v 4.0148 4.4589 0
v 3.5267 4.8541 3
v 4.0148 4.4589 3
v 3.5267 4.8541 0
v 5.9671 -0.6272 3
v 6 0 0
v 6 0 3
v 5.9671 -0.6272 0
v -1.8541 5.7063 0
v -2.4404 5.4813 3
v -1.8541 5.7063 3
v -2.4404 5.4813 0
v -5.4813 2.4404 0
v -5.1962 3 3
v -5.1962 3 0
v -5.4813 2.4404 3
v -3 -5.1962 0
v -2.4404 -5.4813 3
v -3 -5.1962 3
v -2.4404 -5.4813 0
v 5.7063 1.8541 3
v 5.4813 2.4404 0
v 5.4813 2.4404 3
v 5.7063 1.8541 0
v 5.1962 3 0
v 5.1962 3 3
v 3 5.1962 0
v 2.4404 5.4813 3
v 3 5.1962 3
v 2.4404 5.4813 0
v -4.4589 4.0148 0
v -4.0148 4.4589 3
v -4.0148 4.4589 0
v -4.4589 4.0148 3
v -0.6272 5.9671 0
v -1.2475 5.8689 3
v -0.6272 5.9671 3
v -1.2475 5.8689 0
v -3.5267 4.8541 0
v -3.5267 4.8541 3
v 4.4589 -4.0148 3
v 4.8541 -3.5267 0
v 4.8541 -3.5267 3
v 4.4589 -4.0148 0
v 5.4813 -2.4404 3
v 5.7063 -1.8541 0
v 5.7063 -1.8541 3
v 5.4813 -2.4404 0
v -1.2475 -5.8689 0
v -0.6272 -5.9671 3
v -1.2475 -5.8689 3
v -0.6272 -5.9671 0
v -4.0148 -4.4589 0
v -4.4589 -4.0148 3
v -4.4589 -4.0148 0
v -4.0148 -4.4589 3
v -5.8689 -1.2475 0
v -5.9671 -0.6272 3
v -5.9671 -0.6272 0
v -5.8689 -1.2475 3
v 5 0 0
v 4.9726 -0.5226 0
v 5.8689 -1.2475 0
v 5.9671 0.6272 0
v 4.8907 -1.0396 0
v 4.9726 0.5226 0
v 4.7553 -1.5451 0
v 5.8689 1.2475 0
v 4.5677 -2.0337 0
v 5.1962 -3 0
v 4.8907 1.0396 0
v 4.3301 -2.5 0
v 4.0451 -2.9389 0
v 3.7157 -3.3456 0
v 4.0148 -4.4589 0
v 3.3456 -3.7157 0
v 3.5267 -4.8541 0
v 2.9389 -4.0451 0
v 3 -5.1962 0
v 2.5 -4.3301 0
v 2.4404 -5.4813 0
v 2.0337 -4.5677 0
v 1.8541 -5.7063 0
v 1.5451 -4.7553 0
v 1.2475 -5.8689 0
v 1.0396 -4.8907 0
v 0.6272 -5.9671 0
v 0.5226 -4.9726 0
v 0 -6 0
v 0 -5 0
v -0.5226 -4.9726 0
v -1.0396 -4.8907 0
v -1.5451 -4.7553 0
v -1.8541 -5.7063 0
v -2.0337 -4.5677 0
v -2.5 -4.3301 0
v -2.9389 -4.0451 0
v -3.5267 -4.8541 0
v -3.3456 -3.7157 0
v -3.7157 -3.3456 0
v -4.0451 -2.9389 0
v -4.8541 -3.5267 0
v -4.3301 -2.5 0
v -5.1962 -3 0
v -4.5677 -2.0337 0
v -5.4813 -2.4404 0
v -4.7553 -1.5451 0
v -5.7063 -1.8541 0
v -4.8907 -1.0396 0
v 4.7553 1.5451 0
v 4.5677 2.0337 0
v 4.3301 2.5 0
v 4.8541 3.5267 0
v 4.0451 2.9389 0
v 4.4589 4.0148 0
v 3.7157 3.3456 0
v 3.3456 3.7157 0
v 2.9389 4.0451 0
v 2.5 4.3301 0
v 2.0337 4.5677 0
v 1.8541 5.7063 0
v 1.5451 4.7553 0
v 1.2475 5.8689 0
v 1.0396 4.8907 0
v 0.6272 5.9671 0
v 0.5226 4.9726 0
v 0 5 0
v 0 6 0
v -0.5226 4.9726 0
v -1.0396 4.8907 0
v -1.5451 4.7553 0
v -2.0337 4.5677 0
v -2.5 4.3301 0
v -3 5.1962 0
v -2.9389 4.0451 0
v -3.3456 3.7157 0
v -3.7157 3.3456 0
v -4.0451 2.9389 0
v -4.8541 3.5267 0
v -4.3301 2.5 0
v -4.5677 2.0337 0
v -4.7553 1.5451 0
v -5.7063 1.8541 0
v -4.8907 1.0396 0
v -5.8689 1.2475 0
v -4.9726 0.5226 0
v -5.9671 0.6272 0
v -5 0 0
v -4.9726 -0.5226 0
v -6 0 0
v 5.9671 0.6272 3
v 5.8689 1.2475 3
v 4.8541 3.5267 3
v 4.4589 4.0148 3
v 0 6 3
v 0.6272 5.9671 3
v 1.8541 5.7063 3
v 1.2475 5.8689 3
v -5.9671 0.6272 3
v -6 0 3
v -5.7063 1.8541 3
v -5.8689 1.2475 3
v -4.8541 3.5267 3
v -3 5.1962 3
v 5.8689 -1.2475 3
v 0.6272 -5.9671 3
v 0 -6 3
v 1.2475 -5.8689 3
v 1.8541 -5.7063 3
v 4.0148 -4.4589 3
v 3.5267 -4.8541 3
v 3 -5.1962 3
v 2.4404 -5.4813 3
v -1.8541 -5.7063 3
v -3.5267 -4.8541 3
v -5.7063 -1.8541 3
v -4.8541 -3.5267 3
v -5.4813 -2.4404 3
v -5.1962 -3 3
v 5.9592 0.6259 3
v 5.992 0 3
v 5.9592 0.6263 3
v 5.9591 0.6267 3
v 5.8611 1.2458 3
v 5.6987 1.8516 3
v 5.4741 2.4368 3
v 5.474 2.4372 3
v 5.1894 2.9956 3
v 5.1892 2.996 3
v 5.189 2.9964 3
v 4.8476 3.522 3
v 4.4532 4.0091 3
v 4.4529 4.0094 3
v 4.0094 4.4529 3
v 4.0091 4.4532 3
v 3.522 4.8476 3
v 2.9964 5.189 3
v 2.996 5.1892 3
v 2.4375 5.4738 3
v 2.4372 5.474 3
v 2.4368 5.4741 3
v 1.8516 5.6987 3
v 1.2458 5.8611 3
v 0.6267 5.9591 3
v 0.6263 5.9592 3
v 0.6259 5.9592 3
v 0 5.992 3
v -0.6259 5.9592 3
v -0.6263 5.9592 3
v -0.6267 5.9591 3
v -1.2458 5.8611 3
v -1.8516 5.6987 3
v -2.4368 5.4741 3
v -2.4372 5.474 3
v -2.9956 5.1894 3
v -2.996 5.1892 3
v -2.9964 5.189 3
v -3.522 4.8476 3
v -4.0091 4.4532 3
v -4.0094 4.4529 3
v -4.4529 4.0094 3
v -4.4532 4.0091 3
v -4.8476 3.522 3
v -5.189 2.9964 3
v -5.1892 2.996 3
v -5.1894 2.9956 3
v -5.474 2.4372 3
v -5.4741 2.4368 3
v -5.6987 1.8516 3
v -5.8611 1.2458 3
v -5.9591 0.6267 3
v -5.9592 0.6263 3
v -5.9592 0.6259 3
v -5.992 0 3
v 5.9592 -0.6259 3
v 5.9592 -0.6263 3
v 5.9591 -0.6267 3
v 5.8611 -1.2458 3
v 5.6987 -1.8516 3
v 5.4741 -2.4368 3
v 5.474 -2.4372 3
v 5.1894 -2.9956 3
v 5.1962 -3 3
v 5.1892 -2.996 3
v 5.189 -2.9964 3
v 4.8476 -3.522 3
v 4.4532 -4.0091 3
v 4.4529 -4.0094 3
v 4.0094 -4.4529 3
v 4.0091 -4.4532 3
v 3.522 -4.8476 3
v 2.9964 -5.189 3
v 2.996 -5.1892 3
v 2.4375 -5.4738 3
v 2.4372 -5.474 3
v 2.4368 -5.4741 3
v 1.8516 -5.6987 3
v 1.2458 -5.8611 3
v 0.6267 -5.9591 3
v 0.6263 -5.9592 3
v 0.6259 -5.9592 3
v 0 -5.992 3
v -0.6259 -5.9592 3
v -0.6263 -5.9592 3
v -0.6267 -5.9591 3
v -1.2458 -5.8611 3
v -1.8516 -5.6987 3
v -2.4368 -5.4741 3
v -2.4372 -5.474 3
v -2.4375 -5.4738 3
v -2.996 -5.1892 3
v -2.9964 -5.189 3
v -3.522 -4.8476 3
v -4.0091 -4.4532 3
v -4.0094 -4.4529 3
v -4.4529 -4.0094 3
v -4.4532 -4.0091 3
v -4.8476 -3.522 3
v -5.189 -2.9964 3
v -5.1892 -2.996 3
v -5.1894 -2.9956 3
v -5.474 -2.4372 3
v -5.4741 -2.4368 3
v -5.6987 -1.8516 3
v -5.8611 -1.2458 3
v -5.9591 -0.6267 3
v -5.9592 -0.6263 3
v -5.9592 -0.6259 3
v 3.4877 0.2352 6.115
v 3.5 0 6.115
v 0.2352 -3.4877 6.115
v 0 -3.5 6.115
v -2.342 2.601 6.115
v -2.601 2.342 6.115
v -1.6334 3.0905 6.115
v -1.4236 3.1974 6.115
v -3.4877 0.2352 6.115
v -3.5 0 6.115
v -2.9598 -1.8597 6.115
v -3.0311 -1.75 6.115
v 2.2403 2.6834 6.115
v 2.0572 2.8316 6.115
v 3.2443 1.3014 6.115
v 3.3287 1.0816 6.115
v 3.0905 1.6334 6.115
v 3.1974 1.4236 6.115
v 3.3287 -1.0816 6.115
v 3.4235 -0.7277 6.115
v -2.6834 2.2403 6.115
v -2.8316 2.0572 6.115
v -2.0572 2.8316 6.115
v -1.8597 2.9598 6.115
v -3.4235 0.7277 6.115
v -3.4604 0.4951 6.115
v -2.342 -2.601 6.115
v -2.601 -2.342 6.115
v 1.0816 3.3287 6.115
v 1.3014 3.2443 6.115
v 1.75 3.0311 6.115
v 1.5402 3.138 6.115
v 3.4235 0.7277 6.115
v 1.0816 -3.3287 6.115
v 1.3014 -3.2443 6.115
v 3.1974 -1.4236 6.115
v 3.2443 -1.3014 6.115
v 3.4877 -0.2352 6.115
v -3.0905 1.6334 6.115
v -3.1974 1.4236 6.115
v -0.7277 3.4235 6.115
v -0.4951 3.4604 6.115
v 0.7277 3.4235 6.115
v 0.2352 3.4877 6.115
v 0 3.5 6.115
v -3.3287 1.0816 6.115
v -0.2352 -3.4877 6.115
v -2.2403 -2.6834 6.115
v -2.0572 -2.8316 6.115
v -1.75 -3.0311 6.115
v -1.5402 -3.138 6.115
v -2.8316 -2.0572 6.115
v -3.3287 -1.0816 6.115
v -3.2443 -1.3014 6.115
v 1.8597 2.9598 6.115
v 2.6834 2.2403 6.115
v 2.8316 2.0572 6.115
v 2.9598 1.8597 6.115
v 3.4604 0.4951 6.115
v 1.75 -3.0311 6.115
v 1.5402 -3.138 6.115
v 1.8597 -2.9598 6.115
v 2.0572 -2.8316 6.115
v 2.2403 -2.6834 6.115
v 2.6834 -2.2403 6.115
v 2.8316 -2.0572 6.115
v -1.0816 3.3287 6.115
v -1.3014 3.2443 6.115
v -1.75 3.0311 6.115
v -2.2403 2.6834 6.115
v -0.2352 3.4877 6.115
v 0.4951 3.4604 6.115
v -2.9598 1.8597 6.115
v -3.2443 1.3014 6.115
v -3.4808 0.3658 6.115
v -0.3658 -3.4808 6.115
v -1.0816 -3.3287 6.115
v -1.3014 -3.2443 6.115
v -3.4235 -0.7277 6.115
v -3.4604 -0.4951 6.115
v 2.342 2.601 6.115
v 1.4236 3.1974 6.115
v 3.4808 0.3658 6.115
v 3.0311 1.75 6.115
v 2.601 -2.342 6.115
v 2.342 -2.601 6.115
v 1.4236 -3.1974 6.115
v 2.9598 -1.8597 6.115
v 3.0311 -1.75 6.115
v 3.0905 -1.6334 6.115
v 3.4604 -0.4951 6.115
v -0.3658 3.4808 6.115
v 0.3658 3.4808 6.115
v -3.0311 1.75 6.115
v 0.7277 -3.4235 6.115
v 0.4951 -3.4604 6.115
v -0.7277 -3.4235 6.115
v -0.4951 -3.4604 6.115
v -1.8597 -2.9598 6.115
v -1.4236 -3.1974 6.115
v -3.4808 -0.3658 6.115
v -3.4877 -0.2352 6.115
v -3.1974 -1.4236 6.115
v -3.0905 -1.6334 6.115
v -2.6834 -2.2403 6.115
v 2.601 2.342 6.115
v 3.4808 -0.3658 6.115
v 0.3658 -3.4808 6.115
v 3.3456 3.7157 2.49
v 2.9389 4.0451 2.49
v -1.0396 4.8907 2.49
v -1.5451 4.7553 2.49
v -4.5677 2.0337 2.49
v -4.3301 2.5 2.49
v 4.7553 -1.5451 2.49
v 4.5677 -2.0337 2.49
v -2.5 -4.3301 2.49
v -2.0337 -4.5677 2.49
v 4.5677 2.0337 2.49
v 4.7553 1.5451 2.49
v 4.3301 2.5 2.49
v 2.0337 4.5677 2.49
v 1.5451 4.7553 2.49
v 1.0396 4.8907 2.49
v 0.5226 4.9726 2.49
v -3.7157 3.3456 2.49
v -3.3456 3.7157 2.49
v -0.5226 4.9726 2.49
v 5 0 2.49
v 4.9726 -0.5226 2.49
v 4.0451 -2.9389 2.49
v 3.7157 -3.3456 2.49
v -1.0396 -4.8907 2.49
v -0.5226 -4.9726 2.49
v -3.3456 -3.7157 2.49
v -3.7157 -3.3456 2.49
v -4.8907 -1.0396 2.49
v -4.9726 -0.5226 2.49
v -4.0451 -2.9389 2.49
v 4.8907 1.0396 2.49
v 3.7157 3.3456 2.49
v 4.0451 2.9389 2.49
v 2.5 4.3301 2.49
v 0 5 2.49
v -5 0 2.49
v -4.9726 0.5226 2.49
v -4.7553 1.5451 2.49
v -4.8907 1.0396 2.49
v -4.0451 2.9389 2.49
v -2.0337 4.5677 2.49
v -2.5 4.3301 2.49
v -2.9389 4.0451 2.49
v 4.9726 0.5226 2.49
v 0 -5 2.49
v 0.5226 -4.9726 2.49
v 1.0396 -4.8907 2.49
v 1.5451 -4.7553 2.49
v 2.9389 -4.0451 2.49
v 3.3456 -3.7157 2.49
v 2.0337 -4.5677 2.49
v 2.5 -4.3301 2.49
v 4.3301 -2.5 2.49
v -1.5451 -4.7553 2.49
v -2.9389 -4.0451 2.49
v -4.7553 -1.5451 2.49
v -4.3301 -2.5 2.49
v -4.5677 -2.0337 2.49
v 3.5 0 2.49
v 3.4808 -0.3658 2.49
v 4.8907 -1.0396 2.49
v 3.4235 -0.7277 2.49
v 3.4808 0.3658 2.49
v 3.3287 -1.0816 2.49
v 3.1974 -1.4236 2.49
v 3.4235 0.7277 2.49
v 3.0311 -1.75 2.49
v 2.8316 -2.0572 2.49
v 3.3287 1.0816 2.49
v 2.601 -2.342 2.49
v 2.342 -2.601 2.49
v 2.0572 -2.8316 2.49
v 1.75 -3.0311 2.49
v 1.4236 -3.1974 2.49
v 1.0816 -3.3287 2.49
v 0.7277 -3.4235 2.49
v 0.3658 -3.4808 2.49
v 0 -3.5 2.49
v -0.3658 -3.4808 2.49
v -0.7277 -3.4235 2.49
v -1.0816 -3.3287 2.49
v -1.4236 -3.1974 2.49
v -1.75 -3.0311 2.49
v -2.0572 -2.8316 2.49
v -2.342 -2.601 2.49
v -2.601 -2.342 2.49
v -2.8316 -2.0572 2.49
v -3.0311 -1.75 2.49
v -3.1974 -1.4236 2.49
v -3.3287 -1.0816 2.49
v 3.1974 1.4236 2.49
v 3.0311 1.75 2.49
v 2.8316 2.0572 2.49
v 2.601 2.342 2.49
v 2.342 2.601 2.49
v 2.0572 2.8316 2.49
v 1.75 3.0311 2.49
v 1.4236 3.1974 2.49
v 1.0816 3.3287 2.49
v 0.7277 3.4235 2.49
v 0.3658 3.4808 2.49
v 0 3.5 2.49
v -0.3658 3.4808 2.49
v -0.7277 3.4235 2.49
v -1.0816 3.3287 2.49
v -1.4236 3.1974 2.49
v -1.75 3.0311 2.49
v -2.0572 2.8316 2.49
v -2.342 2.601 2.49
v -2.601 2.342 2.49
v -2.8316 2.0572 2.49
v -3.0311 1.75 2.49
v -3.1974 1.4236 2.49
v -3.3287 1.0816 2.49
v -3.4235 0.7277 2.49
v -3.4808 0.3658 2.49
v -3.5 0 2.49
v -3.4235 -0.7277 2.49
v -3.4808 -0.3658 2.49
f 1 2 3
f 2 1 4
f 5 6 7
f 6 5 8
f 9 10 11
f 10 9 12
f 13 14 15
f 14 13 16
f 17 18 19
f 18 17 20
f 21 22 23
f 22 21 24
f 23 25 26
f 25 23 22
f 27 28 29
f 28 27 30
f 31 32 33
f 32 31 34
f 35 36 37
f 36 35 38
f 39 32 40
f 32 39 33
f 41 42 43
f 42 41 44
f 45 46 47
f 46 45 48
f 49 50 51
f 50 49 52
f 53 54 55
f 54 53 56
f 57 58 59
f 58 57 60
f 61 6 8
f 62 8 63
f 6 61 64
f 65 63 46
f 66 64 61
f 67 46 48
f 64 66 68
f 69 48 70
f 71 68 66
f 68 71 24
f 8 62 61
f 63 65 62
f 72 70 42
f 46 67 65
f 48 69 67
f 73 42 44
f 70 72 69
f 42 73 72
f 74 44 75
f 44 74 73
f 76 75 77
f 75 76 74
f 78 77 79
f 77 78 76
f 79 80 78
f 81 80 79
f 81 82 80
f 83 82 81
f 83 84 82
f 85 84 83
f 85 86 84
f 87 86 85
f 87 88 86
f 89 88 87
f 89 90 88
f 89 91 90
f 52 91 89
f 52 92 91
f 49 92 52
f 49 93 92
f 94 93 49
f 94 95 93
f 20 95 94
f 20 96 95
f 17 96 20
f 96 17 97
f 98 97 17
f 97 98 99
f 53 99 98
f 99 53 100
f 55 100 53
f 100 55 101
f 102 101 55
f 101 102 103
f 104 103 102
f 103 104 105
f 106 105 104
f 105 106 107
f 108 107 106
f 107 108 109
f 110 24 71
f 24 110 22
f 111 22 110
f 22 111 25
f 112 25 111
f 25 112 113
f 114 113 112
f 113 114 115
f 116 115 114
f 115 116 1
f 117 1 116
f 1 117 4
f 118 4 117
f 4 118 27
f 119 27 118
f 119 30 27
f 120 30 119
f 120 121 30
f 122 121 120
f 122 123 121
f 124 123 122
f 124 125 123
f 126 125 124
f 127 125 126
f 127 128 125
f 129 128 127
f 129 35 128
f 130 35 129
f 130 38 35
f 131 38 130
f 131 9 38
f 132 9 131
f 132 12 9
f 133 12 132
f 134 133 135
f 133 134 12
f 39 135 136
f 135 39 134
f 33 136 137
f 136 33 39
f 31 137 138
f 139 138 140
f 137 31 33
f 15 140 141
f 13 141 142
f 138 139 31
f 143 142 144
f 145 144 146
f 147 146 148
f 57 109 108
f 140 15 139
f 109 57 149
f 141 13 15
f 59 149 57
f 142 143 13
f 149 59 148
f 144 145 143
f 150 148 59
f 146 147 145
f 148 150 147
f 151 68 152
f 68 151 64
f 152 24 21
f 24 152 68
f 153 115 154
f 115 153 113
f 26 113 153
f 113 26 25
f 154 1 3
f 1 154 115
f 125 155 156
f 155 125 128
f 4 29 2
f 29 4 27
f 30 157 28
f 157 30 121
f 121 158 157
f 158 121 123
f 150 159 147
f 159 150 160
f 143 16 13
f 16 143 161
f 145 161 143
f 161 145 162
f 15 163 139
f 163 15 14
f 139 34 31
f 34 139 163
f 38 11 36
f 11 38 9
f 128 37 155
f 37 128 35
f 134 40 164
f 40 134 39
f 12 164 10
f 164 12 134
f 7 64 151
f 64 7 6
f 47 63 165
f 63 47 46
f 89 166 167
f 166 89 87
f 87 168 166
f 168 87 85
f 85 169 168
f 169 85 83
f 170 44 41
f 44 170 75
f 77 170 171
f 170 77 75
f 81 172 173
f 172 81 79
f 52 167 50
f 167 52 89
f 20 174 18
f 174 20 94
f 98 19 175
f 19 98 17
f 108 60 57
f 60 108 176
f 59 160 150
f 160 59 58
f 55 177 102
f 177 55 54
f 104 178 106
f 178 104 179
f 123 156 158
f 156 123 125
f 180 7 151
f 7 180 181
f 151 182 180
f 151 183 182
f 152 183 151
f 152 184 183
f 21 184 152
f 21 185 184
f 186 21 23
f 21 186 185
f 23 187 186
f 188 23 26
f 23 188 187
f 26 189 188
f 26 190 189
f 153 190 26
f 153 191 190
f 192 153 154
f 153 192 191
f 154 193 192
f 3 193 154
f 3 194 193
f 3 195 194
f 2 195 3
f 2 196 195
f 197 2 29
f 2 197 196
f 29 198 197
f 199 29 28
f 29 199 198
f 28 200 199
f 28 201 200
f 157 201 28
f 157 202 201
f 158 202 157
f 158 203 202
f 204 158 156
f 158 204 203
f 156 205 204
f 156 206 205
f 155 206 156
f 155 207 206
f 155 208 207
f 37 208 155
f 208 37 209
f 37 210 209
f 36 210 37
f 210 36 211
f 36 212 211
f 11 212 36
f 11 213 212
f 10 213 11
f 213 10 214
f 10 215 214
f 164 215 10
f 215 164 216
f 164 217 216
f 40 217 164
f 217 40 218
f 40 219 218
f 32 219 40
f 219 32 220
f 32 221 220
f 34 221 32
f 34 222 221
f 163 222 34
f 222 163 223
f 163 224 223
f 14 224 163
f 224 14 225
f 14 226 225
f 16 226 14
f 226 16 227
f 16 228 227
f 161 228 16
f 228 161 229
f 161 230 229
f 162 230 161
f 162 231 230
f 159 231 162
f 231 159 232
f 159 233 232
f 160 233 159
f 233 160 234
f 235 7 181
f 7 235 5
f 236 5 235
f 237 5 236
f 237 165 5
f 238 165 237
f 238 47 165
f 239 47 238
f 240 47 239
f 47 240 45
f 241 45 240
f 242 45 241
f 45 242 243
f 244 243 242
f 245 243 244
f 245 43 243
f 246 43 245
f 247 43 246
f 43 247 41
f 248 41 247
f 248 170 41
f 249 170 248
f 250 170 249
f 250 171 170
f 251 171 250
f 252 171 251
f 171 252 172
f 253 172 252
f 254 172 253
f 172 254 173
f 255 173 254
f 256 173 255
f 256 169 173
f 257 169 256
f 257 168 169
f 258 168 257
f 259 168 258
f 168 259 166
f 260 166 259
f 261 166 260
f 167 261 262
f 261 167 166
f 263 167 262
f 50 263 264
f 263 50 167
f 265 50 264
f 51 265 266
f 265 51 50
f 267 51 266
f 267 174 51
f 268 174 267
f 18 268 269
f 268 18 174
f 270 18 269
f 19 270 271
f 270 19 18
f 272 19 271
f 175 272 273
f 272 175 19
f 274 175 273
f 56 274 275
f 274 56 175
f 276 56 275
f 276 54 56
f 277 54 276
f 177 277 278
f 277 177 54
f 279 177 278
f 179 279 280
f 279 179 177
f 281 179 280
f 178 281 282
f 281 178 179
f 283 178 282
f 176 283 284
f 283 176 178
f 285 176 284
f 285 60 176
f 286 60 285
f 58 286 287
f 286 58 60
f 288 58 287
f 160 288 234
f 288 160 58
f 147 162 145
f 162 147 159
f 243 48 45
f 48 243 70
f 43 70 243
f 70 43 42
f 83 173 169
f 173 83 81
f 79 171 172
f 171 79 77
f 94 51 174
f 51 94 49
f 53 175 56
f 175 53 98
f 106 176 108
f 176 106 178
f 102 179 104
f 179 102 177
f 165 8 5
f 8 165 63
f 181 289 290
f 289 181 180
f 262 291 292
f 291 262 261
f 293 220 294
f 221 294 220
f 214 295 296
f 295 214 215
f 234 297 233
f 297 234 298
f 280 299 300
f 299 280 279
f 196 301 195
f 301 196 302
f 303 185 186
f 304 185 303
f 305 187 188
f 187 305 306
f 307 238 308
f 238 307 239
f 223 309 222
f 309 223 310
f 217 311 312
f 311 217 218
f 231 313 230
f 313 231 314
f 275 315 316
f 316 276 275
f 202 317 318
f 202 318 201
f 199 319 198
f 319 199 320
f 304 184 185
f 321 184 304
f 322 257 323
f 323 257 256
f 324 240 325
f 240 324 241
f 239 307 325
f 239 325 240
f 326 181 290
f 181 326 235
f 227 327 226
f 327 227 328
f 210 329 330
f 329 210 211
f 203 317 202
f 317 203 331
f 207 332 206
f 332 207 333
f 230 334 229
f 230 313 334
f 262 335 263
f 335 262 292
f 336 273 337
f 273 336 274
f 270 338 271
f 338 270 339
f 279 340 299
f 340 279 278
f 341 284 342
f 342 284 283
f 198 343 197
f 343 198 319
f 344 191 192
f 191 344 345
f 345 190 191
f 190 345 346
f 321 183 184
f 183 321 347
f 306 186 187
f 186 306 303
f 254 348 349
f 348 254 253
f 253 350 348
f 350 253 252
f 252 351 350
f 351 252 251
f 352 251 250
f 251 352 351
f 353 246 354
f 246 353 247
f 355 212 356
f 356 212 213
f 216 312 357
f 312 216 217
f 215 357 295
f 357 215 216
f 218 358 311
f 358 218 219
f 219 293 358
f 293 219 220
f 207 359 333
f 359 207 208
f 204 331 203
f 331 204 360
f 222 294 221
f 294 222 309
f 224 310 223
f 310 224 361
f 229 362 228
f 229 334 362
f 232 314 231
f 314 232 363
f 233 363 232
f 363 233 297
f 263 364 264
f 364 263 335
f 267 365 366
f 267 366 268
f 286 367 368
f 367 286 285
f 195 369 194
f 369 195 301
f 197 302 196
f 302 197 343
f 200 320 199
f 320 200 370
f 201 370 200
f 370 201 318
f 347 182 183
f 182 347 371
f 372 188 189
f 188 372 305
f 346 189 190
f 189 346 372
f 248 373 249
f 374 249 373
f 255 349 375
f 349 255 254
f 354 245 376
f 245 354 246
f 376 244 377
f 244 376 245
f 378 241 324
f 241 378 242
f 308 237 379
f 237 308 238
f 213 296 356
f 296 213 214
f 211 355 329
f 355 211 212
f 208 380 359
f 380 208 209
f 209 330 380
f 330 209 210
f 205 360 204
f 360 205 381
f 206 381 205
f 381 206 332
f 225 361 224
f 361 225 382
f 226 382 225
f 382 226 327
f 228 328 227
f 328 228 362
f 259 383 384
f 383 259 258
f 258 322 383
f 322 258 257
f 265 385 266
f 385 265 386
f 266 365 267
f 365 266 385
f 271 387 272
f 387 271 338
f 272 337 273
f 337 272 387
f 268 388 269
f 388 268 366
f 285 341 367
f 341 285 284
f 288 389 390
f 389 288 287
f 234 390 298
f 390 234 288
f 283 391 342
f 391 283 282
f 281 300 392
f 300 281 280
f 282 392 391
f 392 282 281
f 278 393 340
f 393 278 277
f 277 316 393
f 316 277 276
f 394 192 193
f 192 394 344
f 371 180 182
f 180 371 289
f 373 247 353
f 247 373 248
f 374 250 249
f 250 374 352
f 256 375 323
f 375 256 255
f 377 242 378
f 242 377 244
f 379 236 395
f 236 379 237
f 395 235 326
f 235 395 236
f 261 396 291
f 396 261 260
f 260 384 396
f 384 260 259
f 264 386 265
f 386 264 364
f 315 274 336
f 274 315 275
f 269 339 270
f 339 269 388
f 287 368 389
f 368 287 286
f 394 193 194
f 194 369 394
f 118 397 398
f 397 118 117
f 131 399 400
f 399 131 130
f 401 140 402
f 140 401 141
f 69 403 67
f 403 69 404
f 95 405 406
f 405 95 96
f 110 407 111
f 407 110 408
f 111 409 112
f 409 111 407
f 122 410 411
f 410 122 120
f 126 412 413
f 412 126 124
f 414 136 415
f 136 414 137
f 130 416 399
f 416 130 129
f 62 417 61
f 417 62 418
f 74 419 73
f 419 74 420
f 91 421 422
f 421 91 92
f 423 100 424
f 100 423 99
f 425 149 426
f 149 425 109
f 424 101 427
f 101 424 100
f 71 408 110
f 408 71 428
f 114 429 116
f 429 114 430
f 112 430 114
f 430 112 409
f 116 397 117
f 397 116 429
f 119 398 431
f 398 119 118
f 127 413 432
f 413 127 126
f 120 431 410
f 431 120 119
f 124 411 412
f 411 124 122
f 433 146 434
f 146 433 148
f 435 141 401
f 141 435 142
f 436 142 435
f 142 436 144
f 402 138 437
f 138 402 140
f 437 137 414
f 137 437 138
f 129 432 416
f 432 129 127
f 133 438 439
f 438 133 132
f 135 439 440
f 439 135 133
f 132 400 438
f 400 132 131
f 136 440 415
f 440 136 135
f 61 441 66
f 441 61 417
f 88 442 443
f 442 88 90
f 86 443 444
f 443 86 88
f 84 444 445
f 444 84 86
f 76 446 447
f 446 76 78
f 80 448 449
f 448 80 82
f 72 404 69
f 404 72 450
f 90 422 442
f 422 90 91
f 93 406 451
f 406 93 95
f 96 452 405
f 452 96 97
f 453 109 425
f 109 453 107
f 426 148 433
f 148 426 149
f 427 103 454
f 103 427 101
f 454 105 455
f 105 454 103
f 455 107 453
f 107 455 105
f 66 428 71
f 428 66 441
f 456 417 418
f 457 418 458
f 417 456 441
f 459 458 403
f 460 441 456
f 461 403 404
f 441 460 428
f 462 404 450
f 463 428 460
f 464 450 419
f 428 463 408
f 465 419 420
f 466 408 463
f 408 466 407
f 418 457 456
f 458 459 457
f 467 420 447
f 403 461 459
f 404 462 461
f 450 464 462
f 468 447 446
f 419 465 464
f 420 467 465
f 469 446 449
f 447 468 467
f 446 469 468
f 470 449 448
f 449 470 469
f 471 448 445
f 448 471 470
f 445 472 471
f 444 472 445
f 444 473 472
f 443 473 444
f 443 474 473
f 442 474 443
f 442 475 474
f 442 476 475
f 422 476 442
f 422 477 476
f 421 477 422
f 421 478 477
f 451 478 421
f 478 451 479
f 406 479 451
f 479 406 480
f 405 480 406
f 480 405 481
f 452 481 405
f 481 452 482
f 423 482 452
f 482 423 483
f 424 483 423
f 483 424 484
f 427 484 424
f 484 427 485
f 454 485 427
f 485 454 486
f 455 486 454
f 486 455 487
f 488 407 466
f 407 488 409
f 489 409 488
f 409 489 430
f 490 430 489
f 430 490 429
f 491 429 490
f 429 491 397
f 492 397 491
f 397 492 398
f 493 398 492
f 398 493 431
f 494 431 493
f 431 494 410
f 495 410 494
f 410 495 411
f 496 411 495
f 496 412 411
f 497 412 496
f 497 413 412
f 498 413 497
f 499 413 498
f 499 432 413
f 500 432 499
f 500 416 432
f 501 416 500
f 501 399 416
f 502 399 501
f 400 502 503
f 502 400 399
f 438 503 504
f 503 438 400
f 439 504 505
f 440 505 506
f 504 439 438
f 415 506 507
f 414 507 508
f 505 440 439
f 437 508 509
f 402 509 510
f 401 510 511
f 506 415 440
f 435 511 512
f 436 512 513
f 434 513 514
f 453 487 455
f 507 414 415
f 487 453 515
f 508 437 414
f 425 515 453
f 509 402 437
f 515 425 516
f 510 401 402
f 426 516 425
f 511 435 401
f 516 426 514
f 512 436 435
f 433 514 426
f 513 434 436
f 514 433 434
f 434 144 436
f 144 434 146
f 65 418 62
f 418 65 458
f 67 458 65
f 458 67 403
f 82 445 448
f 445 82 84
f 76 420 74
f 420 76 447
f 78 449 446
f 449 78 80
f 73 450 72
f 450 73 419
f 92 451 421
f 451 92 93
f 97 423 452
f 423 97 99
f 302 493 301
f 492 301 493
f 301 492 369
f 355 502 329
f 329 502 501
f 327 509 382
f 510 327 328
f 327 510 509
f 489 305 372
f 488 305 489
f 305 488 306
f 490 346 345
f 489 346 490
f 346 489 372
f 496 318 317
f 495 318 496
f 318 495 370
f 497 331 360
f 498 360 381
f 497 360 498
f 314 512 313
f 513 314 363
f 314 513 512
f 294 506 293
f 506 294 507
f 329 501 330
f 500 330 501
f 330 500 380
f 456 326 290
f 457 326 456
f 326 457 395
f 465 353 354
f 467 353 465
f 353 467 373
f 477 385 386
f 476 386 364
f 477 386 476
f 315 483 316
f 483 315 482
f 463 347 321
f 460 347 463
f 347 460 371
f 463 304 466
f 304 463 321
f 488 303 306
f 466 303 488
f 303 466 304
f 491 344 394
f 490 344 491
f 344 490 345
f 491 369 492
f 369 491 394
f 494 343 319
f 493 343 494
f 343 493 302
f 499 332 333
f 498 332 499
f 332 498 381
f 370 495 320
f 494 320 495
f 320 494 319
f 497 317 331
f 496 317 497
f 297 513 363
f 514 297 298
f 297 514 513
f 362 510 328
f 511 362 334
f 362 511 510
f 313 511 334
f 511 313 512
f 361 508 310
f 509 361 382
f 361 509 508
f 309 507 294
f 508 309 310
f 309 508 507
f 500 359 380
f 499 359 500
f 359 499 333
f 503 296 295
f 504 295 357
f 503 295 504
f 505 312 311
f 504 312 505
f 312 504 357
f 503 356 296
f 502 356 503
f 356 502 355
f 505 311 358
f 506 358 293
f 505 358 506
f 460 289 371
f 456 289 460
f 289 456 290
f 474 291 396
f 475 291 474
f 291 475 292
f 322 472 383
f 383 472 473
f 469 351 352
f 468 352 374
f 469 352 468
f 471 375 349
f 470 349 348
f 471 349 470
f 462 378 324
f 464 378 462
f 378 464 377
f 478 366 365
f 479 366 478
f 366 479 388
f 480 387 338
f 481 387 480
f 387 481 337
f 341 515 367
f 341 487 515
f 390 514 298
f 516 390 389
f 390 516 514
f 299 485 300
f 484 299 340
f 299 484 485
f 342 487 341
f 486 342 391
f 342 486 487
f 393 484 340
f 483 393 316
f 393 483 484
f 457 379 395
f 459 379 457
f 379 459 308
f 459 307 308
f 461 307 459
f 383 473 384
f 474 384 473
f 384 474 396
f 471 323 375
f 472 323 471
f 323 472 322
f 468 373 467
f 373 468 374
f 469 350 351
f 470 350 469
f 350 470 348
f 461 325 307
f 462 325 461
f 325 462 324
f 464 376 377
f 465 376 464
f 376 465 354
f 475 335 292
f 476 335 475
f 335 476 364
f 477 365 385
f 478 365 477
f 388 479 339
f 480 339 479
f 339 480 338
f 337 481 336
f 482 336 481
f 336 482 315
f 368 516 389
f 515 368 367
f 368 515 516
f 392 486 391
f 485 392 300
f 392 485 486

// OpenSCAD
mm=1;
eps=0.01;
$fn=60;

module magnet(th) {
    cylinder(r = 5*mm+th, h = 2.5*mm+th);
}

module shaft(th, height) {
    cylinder(r=3.5*mm+th, height);
}

module part(th, height) {
    magnet(th);
    translate([0,0,2*mm])
    shaft(th,height);
}

module shell(){
    cylinder(r=6*mm,h=3*mm);
    translate([0,0,3*mm-eps])
    cylinder(r1=6*mm, r2=2*mm, h=5*mm);  
}

difference(){
    shell();
    translate([0,0,-eps])
    part(0,10*mm);
    
}
